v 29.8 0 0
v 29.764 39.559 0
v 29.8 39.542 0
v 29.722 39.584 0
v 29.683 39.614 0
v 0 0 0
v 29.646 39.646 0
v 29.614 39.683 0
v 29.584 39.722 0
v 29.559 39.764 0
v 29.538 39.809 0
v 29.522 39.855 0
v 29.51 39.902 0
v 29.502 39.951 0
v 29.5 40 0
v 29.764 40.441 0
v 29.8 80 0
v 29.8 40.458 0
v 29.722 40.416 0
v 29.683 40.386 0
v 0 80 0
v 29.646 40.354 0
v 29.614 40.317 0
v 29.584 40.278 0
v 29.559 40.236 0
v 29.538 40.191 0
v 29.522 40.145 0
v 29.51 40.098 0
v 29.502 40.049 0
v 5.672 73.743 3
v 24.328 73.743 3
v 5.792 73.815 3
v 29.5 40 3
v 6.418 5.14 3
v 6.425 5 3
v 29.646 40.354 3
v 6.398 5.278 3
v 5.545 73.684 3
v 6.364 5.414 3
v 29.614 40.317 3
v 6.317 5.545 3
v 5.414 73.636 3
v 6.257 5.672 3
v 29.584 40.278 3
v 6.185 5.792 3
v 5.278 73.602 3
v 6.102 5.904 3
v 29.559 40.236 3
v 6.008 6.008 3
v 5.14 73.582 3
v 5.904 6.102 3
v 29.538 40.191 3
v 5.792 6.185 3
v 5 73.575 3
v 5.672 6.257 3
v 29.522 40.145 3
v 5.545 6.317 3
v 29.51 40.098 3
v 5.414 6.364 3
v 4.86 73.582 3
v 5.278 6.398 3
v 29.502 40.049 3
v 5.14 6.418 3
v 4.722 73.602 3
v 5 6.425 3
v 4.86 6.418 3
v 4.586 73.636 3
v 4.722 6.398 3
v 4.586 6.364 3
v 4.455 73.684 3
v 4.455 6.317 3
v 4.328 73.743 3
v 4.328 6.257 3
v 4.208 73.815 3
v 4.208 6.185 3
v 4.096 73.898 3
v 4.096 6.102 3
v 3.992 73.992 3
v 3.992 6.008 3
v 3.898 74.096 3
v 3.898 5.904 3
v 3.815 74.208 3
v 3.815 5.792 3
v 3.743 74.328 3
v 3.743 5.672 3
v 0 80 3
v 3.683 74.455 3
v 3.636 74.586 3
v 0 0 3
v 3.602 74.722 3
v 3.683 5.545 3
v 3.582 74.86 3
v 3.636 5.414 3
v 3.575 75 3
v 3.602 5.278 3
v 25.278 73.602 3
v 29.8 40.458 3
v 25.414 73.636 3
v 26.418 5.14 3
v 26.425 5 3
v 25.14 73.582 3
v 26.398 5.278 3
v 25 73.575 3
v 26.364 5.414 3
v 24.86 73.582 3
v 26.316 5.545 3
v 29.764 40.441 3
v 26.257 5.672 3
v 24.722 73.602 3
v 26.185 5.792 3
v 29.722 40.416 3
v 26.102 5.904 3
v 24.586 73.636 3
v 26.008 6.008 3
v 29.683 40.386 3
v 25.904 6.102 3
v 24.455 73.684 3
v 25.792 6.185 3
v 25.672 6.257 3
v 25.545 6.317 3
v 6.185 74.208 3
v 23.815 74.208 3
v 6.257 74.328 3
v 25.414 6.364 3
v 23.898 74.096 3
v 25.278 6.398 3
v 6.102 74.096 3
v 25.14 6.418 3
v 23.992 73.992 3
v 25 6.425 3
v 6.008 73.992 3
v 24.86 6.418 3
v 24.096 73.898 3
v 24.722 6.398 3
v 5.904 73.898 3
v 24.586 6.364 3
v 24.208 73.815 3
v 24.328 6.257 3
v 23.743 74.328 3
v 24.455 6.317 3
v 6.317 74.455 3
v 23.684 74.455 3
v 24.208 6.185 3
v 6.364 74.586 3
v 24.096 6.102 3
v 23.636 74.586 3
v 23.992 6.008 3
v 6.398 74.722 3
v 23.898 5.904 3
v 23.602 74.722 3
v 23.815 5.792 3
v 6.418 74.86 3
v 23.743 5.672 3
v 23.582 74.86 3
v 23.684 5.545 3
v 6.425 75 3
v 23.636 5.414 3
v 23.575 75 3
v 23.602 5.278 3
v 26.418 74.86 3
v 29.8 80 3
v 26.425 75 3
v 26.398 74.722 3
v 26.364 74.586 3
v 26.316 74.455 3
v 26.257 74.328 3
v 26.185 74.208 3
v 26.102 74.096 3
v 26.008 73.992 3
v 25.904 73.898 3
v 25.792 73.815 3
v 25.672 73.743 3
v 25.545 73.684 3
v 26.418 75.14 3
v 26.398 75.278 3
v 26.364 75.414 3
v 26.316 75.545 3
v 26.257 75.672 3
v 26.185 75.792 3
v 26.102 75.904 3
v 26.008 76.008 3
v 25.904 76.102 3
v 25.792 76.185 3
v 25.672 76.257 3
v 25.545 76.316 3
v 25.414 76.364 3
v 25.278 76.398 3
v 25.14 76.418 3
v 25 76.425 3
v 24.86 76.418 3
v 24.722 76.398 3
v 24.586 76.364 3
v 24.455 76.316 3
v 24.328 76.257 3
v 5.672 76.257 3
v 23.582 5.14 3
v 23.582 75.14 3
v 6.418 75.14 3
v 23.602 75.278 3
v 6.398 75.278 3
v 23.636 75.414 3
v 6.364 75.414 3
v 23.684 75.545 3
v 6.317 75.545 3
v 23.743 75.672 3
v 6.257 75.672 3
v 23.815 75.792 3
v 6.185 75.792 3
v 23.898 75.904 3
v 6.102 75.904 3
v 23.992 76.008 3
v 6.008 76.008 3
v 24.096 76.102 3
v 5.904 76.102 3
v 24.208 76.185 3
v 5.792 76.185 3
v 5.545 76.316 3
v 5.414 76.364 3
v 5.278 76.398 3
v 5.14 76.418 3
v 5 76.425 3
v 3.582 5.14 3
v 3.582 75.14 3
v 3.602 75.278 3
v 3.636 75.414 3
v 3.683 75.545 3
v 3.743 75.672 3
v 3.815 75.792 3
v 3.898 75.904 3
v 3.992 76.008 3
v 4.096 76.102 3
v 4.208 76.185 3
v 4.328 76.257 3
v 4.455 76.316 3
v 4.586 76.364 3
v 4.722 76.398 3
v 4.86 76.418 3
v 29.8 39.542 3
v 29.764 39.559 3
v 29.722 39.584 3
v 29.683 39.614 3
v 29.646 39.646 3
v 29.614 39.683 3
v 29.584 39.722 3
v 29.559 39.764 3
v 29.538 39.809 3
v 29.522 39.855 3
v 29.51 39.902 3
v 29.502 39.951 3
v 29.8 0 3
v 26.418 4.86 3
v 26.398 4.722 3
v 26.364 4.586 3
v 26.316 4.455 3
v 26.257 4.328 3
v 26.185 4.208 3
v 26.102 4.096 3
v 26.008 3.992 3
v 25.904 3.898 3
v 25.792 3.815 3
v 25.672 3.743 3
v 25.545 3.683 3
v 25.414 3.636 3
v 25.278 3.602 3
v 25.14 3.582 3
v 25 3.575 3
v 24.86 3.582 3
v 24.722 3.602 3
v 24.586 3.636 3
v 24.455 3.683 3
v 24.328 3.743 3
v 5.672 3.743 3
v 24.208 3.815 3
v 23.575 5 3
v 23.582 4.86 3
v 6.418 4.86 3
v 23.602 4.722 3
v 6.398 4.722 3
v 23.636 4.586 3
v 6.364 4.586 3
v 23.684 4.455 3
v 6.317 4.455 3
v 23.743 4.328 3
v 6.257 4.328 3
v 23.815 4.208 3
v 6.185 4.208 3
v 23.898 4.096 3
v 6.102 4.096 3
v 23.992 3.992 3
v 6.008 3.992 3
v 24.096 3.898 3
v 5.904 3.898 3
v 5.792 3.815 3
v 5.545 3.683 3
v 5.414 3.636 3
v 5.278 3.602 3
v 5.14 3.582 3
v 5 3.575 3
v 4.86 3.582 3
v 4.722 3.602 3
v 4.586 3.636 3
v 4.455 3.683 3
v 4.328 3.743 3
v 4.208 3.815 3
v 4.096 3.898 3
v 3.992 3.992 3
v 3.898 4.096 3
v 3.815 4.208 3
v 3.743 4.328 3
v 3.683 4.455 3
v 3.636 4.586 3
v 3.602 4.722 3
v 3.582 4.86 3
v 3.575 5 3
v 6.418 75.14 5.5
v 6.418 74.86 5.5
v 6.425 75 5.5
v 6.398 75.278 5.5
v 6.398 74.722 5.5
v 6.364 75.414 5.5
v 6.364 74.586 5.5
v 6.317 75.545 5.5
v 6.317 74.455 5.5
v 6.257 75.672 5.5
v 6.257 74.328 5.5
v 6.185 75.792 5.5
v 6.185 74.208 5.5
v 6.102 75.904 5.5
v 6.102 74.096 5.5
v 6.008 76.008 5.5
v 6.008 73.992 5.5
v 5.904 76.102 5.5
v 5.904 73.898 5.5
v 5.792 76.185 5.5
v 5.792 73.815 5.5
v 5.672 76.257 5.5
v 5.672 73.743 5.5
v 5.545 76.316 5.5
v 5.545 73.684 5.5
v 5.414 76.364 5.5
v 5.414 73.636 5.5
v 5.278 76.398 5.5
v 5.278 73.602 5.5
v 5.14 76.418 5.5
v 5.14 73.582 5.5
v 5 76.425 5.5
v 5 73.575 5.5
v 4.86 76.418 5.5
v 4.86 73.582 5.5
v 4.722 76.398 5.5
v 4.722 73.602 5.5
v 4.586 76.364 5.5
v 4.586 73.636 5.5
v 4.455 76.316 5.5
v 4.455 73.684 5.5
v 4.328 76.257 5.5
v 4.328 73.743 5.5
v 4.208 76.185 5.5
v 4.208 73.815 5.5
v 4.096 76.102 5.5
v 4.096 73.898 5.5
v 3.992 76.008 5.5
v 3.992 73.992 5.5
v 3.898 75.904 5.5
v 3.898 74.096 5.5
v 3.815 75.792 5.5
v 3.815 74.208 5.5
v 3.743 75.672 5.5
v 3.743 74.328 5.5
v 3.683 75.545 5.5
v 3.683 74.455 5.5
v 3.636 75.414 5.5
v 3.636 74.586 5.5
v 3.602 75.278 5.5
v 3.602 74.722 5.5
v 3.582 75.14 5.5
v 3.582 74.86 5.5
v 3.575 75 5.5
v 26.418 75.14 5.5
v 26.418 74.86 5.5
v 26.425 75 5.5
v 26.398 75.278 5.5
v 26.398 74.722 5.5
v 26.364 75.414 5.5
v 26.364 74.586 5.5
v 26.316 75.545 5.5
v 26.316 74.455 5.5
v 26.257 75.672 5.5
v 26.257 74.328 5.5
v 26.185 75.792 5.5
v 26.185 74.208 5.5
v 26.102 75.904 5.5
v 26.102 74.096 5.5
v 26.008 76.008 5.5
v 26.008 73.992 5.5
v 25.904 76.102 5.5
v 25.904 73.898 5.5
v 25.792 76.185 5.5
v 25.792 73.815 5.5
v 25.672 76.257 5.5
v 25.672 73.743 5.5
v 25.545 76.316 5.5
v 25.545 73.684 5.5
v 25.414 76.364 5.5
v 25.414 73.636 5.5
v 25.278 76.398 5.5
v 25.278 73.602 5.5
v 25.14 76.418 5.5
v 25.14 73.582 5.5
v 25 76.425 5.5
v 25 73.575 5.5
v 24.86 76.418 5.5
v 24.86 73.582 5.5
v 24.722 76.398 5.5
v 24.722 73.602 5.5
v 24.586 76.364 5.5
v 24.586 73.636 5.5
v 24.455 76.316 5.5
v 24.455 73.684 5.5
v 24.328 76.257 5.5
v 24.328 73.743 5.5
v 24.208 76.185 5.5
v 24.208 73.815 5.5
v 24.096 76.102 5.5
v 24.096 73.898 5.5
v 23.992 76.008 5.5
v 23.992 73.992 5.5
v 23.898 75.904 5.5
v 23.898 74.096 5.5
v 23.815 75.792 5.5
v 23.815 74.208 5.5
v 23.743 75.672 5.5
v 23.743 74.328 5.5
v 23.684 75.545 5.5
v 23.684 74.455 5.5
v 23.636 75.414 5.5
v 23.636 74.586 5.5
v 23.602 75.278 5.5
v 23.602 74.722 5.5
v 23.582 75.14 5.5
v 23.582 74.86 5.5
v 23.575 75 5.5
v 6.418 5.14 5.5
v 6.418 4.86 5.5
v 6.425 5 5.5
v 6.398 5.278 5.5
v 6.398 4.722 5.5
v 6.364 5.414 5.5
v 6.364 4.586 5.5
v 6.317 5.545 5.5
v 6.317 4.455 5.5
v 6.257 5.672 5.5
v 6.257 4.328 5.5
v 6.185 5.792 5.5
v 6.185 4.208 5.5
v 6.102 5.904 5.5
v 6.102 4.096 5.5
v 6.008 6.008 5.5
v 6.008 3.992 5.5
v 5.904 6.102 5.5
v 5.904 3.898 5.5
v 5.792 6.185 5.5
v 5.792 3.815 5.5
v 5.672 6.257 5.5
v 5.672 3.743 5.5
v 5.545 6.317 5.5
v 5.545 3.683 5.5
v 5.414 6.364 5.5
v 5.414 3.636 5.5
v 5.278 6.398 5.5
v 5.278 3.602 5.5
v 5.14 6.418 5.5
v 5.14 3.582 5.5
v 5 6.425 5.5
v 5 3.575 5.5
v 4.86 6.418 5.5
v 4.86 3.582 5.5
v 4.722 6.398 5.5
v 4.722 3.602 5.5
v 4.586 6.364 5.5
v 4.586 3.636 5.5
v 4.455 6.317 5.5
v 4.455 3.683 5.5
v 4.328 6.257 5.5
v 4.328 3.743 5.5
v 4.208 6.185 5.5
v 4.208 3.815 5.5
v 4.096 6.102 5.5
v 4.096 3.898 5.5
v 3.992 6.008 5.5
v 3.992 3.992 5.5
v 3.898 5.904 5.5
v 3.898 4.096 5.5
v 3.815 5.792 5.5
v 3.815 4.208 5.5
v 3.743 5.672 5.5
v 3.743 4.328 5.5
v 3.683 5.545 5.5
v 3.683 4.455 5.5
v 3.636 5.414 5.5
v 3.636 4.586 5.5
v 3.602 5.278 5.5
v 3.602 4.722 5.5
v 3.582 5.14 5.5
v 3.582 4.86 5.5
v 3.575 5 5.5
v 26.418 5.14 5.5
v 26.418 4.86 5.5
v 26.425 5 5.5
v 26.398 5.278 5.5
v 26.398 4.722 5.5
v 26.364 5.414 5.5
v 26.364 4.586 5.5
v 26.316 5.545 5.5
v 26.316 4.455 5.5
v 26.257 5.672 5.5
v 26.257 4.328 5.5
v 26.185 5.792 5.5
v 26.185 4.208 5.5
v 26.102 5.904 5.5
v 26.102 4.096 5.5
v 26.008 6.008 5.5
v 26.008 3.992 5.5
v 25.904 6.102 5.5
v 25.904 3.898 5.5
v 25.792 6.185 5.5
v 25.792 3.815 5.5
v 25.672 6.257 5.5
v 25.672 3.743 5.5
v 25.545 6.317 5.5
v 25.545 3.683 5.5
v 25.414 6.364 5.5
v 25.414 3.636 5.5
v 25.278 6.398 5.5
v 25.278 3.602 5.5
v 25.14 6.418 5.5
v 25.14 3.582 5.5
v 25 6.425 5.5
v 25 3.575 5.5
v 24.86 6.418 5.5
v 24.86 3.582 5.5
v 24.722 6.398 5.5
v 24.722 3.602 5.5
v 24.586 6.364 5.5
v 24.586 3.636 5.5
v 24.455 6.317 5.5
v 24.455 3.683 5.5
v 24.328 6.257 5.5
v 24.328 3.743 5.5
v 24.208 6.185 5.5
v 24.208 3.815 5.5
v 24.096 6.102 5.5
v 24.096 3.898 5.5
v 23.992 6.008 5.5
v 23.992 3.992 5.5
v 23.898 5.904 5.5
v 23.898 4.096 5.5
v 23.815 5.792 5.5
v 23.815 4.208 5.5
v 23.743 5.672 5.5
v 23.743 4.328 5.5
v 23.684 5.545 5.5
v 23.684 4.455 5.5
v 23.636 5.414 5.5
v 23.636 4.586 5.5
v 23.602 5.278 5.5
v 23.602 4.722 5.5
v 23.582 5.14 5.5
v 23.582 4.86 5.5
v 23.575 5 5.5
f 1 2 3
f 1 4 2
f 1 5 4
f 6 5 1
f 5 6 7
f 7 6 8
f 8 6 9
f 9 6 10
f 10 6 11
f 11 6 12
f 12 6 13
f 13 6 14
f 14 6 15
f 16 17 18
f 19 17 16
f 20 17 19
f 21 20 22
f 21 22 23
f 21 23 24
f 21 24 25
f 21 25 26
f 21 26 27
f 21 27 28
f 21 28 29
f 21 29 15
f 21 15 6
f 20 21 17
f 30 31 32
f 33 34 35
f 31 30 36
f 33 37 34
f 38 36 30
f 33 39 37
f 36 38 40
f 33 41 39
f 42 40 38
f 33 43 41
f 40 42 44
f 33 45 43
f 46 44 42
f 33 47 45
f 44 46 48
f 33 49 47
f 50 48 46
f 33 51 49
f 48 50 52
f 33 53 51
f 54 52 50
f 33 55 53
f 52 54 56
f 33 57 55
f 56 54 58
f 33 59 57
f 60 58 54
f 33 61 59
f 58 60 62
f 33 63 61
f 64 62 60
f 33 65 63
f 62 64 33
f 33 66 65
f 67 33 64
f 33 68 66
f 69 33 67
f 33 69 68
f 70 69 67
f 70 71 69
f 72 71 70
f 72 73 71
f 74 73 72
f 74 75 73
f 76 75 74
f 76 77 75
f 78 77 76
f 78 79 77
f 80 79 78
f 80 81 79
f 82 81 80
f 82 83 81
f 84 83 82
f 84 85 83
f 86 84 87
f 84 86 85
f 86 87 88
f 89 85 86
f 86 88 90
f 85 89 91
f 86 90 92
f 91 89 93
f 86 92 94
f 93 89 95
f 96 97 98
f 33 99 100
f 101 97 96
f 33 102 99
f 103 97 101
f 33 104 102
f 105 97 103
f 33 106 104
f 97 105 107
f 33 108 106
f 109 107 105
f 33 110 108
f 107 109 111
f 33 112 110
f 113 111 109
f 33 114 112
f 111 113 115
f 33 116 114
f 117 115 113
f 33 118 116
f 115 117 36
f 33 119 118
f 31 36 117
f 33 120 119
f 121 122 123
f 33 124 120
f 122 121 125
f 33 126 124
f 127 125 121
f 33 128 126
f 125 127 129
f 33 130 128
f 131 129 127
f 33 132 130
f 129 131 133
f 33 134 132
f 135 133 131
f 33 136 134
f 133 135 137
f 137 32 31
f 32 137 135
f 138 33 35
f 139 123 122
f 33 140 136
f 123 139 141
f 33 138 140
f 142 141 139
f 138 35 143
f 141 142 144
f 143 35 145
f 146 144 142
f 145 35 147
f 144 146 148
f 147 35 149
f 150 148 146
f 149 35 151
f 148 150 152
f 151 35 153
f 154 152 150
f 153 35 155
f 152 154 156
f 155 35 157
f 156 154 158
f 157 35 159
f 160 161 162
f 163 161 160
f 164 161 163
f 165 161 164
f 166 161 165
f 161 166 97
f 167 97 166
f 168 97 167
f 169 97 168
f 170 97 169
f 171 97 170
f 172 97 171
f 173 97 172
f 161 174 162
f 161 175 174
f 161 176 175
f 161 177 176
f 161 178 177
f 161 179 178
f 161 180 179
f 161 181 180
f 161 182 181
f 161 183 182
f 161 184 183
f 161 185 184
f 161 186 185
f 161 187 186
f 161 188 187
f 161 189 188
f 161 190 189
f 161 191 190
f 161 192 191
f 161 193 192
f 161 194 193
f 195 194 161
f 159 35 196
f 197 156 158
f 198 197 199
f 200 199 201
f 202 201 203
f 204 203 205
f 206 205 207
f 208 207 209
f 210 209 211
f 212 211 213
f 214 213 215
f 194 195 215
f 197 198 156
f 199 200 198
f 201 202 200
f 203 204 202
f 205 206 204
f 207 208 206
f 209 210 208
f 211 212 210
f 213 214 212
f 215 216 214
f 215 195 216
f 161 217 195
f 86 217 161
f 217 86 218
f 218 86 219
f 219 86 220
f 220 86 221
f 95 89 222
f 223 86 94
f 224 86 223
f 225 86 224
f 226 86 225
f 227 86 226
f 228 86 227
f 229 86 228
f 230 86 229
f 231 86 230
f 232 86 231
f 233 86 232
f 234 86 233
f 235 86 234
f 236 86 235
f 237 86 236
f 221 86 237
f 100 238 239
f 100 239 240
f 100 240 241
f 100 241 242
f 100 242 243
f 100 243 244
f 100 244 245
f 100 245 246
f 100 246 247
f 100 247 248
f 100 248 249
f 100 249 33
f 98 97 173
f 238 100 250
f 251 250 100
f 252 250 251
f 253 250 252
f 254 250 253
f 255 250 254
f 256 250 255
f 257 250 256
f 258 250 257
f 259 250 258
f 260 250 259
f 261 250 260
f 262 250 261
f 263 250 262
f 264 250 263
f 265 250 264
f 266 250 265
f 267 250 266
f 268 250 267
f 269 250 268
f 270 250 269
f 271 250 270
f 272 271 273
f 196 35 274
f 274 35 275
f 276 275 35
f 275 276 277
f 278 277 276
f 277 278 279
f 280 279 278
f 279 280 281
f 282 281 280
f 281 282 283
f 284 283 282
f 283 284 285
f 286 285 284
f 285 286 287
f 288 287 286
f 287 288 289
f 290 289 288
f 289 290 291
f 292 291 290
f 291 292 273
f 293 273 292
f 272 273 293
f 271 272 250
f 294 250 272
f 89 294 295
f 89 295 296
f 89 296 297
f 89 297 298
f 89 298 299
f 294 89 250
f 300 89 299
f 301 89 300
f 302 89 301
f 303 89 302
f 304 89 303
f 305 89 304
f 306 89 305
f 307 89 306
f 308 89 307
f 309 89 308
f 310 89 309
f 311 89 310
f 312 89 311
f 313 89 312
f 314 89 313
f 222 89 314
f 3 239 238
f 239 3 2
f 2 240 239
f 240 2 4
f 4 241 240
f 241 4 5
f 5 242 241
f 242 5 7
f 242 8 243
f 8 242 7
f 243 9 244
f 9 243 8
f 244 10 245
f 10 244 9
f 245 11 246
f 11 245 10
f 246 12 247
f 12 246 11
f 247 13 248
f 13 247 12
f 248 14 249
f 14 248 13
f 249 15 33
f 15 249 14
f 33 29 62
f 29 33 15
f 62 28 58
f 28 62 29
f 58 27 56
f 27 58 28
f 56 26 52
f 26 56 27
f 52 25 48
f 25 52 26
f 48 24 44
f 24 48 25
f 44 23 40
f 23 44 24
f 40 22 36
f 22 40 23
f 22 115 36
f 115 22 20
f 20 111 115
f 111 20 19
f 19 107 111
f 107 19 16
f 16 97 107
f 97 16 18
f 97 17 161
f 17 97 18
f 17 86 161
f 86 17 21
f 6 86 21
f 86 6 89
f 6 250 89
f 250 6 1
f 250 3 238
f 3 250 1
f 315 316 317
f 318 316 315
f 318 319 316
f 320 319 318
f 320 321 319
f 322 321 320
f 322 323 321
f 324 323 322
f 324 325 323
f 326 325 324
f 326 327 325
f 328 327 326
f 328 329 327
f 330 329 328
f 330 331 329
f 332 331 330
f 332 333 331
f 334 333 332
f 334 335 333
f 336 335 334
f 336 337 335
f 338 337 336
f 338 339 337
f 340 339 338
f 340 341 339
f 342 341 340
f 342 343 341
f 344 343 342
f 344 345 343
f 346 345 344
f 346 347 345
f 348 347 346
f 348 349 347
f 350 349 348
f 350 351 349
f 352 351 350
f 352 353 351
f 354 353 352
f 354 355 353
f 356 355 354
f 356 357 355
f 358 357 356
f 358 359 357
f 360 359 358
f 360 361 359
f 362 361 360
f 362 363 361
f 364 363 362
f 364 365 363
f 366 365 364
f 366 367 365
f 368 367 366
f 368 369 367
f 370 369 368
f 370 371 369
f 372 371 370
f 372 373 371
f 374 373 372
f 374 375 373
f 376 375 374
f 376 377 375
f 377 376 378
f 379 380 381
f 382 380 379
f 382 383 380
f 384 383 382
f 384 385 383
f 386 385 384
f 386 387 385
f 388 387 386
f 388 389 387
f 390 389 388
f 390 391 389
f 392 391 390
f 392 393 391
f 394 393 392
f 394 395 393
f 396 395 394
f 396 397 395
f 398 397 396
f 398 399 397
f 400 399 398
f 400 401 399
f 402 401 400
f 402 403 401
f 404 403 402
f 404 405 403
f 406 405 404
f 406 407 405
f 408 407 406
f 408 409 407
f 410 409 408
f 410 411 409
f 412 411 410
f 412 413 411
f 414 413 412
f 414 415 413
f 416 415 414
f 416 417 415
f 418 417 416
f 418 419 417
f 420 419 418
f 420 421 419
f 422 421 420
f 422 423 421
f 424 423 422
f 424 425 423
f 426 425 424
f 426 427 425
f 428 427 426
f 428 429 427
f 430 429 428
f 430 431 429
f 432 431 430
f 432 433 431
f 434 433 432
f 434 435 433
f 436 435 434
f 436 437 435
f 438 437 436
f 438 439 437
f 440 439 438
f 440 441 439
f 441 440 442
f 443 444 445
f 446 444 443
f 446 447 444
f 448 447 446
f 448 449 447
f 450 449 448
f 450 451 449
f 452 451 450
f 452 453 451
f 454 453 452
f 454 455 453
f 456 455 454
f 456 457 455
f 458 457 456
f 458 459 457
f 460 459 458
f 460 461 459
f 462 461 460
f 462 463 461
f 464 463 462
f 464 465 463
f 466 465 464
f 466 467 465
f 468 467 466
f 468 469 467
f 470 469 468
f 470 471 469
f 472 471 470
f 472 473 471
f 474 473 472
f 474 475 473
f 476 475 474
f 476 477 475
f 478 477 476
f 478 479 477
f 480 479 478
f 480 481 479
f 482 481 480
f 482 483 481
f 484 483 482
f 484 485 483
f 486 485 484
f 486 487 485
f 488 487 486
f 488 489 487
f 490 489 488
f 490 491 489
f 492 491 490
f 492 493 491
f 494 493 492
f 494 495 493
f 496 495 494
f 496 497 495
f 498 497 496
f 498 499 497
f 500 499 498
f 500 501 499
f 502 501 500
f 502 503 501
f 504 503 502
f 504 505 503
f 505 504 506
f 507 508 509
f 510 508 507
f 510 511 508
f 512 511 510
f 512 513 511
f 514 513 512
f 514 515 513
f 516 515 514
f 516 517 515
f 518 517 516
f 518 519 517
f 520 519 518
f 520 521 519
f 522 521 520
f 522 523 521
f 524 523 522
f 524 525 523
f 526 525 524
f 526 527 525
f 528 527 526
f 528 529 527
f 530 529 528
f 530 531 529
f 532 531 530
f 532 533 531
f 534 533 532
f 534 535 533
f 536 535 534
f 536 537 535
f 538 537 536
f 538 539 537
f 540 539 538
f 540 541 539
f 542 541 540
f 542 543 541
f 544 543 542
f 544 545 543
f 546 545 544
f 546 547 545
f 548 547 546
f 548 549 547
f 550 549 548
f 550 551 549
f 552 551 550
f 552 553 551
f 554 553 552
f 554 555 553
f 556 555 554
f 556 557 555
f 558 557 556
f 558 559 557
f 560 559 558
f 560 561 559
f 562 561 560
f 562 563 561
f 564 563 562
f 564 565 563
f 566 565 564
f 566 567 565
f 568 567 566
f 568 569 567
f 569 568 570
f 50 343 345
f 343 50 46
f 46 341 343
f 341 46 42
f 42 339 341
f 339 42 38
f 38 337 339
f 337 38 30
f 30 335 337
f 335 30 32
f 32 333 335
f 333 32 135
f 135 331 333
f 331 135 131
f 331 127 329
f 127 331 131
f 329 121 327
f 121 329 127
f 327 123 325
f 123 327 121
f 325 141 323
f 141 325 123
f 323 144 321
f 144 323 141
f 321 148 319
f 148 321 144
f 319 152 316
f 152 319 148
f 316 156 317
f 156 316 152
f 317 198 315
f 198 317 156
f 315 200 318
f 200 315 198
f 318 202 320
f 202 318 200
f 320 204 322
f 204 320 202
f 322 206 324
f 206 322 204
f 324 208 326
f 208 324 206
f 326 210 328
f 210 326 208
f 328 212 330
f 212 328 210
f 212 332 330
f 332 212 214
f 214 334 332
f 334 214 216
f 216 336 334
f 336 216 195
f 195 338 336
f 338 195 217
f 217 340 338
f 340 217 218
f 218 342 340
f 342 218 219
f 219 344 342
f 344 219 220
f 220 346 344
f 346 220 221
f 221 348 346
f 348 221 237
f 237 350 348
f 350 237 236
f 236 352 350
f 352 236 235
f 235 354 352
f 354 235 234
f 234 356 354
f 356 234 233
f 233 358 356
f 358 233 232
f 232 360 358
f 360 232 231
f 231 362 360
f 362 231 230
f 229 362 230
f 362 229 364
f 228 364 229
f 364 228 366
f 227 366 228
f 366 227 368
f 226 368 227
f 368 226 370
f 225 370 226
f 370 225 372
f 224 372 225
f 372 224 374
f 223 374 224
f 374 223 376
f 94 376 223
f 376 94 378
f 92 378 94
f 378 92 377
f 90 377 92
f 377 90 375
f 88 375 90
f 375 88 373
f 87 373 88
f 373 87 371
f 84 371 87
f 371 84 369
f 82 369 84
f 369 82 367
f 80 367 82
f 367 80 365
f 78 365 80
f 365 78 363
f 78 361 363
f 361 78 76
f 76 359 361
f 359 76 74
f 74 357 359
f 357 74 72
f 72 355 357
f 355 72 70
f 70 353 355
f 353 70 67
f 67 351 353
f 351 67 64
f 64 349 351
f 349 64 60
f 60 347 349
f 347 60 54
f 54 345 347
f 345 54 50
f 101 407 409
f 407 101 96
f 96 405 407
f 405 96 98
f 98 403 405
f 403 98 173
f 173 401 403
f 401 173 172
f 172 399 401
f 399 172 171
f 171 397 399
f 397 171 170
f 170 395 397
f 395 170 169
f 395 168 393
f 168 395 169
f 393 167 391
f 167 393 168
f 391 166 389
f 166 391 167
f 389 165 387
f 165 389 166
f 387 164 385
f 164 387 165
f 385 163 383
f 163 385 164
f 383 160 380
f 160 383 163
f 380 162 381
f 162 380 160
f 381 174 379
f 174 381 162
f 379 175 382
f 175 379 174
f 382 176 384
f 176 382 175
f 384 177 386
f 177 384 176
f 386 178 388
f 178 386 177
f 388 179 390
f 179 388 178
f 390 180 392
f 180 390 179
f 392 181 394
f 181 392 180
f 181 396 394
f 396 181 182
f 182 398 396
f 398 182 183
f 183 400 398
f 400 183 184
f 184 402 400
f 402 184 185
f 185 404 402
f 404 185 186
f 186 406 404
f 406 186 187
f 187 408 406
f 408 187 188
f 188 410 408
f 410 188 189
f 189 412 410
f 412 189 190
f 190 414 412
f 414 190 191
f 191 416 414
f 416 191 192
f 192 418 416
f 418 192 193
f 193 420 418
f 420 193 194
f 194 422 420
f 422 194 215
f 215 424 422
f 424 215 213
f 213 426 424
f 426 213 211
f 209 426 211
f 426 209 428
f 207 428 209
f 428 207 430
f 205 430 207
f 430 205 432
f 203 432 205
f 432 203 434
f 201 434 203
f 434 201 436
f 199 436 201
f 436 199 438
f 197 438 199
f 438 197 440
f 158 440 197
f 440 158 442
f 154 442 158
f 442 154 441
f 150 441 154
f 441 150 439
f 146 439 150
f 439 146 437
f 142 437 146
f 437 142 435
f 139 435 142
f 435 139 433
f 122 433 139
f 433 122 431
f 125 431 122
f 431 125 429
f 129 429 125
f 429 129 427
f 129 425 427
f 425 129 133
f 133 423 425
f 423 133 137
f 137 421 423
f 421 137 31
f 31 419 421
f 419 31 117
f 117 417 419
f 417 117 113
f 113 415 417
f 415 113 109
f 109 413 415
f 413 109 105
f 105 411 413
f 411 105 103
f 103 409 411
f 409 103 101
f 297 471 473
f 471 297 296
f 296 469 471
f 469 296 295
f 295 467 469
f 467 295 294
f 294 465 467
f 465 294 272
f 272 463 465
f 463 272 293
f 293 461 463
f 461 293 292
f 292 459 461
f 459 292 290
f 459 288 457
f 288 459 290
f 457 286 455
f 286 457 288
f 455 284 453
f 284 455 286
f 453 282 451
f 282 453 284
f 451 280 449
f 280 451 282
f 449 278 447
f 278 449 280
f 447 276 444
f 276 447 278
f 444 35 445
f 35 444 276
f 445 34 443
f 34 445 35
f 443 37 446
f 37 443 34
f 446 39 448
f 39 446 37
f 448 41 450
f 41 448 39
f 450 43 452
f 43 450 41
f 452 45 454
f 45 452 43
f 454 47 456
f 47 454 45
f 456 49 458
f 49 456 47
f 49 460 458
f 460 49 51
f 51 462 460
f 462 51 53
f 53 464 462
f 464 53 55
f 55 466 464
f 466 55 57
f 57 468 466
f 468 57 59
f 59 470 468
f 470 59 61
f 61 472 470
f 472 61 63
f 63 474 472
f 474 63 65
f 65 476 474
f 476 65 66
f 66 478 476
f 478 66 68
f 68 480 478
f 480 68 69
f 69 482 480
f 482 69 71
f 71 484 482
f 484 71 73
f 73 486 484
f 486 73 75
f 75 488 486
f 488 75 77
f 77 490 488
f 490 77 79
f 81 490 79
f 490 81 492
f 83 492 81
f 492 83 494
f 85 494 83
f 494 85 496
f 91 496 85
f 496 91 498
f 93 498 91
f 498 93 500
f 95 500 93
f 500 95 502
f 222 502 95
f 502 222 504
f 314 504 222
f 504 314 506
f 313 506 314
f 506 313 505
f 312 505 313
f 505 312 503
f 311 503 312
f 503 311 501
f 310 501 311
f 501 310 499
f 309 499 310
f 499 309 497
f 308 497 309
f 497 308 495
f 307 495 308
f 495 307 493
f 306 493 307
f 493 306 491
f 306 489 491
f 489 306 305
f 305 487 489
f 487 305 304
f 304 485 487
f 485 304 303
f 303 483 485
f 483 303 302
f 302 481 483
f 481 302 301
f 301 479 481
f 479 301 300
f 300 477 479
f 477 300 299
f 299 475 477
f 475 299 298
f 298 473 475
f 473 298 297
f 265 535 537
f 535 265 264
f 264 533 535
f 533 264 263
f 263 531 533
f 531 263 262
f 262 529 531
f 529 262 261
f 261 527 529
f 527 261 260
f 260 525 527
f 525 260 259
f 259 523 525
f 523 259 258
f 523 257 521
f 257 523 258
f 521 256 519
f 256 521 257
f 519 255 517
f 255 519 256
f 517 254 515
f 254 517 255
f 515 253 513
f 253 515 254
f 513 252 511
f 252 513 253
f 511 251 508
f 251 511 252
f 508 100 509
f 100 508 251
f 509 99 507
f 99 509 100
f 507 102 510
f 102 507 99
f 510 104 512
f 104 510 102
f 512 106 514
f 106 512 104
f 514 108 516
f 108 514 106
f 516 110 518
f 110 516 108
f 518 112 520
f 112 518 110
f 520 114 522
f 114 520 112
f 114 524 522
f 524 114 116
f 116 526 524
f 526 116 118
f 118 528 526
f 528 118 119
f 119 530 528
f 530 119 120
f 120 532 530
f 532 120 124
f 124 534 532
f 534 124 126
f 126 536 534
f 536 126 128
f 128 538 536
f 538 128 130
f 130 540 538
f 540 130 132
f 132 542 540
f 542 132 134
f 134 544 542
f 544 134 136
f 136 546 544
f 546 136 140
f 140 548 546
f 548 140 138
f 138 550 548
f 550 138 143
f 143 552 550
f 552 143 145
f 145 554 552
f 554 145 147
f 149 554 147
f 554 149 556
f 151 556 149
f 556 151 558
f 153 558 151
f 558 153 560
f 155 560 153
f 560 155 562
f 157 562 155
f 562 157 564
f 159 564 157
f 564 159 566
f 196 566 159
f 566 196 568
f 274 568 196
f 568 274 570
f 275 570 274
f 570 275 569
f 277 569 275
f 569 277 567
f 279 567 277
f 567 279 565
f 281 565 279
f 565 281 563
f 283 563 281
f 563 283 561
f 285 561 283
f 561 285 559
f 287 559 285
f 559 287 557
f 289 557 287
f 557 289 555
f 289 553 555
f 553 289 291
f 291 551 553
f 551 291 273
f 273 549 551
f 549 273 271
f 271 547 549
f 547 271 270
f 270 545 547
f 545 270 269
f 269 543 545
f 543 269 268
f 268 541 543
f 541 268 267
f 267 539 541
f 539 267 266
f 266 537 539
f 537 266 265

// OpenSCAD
// file: ../common/params.scad
$fn = $preview ? 32 : 64;

// Value of kerf to apply when lasercutting things.
// Value is based on the experience using Epilog Mini machine in
// Google WFC Makerspace.
kerf = 0.2;

// Spacing between insert and miniatures bases to allow to slick fit.
insert_spacing = 0.2;
magnet_spacing = 0.15;

// Default values
//
// Default diameter of magnets used for my miniatures.
default_magnet_diameter = 3;
base_height = 3;
pin_height = 2.5;
// file: ../common/kow.scad
include <params.scad>;

module MagnetSockets(unit_type, only_diagonal = false) {
  baseSize = BaseSize(unit_type);

  translate([ 5, baseSize[1] - 5 ]) children(0);
  translate([ baseSize[0] - 5, 5 ]) children(0);

  if (!only_diagonal) {
    translate([ 5, 5 ]) children(0);
    translate([ baseSize[0] - 5, baseSize[1] - 5 ]) children(0);
  }
}

module Magnet(d = default_magnet_diameter, offset = 0) {
  circle(d = d + offset);
}

module BM4Sockets(unit_type, spacing, only_diagonal = false) {
  MagnetSockets(unit_type = unit_type, only_diagonal = only_diagonal) {
    Magnet(offset = spacing);
  }
}

module Base(unit_type, extraMargin = [ 0, 0 ]) {
  square(BaseSize(unit_type) + extraMargin);
}

function BaseSize(unit_type) = unit_type == "infantry"         ? [ 20, 20 ]
                               : unit_type == "heavy_infantry" ? [ 25, 25 ]
                               : unit_type == "cavalry"        ? [ 25, 50 ]
                               : unit_type == "lrginf"         ? [ 40, 40 ]
                               : unit_type == "lrgcav"         ? [ 50, 50 ]
                               : unit_type == "titan"          ? [ 75, 75 ]
                                                               : [ 10, 10 ];

function BaseNum(unit_type, unitSize) =
    unit_type == "infantry"  ? unitSize == "legion"     ? [ 10, 6 ]
                               : unitSize == "horde"    ? [ 10, 4 ]
                               : unitSize == "regiment" ? [ 5, 4 ]
                                                        : [ 5, 2 ]
    : unit_type == "cavalry" ? unitSize == "regiment" ? [ 5, 2 ] : [ 5, 1 ]
    : unit_type == "lrginf"  ? unitSize == "regiment" ? [ 3, 1 ] : [ 3, 2 ]
    : unit_type == "lrgcav"  ? unitSize == "regiment" ? [ 3, 1 ]
                               : unitSize == "horde"  ? [ 3, 2 ]
                                                      : [ 1, 1 ]
                             : [ 1, 1 ];
// file: ../libinsert.scad
include <common/kow.scad>;

module Pin() {
  Magnet(offset = -magnet_spacing);
}

module LInsert(size, unit_size, unit_type = "infantry") {
  base_num = BaseNum(unit_type, unit_size);
  base_size = BaseSize(unit_type);

  union() {
    width = size * base_size[0];
    length = base_num[1] * base_size[1];

    linear_extrude(height = base_height) {
      square(size =
                 [ width - 10 - insert_spacing, base_num[1] * base_size[1] ]);
      translate(v = [ 0, length - base_size[1] + insert_spacing]) {
        square(size = [ width - insert_spacing, base_size[1] - insert_spacing ]);
      }
    }
    translate(v = [ 0, 0, base_height ]) linear_extrude(height = pin_height) {
      translate(v = [ 5, 5 ]) Pin();
      translate(v = [ 5, length - 5 ]) Pin();
      translate(v = [ width - 5, length - 5 ]) Pin();

      if (size > 1) {
        translate(v = [ width - 5 - 10, 5 ]) Pin();
      }
    }
  }
}

module SideInsert(size, unit_size, unit_type = "infantry") {
  base_num = BaseNum(unit_type, unit_size);
  base_size = BaseSize(unit_type);

  union() {
    width = size * base_size[0];
    length = base_num[1] * base_size[1];

    linear_extrude(height = base_height) {
      difference() {
        square(size = [ width - insert_spacing, length ]);
        translate([width, length/2]) circle(0.5);
      }
    }
    translate(v = [ 0, 0, 3 ]) linear_extrude(height = pin_height) {
      translate(v = [ 5, 5 ]) Pin();
      translate(v = [ 5, length - 5 ]) Pin();
      if (size >= 1) {
        translate(v = [ width - 5, 5 ]) Pin();
        translate(v = [ width - 5, length - 5 ]) Pin();
      }
    }
  }
}
// main file
include <../libinsert.scad>;

$fn = $preview ? 32 : 64;

SideInsert(1.5, "regiment", "infantry");
